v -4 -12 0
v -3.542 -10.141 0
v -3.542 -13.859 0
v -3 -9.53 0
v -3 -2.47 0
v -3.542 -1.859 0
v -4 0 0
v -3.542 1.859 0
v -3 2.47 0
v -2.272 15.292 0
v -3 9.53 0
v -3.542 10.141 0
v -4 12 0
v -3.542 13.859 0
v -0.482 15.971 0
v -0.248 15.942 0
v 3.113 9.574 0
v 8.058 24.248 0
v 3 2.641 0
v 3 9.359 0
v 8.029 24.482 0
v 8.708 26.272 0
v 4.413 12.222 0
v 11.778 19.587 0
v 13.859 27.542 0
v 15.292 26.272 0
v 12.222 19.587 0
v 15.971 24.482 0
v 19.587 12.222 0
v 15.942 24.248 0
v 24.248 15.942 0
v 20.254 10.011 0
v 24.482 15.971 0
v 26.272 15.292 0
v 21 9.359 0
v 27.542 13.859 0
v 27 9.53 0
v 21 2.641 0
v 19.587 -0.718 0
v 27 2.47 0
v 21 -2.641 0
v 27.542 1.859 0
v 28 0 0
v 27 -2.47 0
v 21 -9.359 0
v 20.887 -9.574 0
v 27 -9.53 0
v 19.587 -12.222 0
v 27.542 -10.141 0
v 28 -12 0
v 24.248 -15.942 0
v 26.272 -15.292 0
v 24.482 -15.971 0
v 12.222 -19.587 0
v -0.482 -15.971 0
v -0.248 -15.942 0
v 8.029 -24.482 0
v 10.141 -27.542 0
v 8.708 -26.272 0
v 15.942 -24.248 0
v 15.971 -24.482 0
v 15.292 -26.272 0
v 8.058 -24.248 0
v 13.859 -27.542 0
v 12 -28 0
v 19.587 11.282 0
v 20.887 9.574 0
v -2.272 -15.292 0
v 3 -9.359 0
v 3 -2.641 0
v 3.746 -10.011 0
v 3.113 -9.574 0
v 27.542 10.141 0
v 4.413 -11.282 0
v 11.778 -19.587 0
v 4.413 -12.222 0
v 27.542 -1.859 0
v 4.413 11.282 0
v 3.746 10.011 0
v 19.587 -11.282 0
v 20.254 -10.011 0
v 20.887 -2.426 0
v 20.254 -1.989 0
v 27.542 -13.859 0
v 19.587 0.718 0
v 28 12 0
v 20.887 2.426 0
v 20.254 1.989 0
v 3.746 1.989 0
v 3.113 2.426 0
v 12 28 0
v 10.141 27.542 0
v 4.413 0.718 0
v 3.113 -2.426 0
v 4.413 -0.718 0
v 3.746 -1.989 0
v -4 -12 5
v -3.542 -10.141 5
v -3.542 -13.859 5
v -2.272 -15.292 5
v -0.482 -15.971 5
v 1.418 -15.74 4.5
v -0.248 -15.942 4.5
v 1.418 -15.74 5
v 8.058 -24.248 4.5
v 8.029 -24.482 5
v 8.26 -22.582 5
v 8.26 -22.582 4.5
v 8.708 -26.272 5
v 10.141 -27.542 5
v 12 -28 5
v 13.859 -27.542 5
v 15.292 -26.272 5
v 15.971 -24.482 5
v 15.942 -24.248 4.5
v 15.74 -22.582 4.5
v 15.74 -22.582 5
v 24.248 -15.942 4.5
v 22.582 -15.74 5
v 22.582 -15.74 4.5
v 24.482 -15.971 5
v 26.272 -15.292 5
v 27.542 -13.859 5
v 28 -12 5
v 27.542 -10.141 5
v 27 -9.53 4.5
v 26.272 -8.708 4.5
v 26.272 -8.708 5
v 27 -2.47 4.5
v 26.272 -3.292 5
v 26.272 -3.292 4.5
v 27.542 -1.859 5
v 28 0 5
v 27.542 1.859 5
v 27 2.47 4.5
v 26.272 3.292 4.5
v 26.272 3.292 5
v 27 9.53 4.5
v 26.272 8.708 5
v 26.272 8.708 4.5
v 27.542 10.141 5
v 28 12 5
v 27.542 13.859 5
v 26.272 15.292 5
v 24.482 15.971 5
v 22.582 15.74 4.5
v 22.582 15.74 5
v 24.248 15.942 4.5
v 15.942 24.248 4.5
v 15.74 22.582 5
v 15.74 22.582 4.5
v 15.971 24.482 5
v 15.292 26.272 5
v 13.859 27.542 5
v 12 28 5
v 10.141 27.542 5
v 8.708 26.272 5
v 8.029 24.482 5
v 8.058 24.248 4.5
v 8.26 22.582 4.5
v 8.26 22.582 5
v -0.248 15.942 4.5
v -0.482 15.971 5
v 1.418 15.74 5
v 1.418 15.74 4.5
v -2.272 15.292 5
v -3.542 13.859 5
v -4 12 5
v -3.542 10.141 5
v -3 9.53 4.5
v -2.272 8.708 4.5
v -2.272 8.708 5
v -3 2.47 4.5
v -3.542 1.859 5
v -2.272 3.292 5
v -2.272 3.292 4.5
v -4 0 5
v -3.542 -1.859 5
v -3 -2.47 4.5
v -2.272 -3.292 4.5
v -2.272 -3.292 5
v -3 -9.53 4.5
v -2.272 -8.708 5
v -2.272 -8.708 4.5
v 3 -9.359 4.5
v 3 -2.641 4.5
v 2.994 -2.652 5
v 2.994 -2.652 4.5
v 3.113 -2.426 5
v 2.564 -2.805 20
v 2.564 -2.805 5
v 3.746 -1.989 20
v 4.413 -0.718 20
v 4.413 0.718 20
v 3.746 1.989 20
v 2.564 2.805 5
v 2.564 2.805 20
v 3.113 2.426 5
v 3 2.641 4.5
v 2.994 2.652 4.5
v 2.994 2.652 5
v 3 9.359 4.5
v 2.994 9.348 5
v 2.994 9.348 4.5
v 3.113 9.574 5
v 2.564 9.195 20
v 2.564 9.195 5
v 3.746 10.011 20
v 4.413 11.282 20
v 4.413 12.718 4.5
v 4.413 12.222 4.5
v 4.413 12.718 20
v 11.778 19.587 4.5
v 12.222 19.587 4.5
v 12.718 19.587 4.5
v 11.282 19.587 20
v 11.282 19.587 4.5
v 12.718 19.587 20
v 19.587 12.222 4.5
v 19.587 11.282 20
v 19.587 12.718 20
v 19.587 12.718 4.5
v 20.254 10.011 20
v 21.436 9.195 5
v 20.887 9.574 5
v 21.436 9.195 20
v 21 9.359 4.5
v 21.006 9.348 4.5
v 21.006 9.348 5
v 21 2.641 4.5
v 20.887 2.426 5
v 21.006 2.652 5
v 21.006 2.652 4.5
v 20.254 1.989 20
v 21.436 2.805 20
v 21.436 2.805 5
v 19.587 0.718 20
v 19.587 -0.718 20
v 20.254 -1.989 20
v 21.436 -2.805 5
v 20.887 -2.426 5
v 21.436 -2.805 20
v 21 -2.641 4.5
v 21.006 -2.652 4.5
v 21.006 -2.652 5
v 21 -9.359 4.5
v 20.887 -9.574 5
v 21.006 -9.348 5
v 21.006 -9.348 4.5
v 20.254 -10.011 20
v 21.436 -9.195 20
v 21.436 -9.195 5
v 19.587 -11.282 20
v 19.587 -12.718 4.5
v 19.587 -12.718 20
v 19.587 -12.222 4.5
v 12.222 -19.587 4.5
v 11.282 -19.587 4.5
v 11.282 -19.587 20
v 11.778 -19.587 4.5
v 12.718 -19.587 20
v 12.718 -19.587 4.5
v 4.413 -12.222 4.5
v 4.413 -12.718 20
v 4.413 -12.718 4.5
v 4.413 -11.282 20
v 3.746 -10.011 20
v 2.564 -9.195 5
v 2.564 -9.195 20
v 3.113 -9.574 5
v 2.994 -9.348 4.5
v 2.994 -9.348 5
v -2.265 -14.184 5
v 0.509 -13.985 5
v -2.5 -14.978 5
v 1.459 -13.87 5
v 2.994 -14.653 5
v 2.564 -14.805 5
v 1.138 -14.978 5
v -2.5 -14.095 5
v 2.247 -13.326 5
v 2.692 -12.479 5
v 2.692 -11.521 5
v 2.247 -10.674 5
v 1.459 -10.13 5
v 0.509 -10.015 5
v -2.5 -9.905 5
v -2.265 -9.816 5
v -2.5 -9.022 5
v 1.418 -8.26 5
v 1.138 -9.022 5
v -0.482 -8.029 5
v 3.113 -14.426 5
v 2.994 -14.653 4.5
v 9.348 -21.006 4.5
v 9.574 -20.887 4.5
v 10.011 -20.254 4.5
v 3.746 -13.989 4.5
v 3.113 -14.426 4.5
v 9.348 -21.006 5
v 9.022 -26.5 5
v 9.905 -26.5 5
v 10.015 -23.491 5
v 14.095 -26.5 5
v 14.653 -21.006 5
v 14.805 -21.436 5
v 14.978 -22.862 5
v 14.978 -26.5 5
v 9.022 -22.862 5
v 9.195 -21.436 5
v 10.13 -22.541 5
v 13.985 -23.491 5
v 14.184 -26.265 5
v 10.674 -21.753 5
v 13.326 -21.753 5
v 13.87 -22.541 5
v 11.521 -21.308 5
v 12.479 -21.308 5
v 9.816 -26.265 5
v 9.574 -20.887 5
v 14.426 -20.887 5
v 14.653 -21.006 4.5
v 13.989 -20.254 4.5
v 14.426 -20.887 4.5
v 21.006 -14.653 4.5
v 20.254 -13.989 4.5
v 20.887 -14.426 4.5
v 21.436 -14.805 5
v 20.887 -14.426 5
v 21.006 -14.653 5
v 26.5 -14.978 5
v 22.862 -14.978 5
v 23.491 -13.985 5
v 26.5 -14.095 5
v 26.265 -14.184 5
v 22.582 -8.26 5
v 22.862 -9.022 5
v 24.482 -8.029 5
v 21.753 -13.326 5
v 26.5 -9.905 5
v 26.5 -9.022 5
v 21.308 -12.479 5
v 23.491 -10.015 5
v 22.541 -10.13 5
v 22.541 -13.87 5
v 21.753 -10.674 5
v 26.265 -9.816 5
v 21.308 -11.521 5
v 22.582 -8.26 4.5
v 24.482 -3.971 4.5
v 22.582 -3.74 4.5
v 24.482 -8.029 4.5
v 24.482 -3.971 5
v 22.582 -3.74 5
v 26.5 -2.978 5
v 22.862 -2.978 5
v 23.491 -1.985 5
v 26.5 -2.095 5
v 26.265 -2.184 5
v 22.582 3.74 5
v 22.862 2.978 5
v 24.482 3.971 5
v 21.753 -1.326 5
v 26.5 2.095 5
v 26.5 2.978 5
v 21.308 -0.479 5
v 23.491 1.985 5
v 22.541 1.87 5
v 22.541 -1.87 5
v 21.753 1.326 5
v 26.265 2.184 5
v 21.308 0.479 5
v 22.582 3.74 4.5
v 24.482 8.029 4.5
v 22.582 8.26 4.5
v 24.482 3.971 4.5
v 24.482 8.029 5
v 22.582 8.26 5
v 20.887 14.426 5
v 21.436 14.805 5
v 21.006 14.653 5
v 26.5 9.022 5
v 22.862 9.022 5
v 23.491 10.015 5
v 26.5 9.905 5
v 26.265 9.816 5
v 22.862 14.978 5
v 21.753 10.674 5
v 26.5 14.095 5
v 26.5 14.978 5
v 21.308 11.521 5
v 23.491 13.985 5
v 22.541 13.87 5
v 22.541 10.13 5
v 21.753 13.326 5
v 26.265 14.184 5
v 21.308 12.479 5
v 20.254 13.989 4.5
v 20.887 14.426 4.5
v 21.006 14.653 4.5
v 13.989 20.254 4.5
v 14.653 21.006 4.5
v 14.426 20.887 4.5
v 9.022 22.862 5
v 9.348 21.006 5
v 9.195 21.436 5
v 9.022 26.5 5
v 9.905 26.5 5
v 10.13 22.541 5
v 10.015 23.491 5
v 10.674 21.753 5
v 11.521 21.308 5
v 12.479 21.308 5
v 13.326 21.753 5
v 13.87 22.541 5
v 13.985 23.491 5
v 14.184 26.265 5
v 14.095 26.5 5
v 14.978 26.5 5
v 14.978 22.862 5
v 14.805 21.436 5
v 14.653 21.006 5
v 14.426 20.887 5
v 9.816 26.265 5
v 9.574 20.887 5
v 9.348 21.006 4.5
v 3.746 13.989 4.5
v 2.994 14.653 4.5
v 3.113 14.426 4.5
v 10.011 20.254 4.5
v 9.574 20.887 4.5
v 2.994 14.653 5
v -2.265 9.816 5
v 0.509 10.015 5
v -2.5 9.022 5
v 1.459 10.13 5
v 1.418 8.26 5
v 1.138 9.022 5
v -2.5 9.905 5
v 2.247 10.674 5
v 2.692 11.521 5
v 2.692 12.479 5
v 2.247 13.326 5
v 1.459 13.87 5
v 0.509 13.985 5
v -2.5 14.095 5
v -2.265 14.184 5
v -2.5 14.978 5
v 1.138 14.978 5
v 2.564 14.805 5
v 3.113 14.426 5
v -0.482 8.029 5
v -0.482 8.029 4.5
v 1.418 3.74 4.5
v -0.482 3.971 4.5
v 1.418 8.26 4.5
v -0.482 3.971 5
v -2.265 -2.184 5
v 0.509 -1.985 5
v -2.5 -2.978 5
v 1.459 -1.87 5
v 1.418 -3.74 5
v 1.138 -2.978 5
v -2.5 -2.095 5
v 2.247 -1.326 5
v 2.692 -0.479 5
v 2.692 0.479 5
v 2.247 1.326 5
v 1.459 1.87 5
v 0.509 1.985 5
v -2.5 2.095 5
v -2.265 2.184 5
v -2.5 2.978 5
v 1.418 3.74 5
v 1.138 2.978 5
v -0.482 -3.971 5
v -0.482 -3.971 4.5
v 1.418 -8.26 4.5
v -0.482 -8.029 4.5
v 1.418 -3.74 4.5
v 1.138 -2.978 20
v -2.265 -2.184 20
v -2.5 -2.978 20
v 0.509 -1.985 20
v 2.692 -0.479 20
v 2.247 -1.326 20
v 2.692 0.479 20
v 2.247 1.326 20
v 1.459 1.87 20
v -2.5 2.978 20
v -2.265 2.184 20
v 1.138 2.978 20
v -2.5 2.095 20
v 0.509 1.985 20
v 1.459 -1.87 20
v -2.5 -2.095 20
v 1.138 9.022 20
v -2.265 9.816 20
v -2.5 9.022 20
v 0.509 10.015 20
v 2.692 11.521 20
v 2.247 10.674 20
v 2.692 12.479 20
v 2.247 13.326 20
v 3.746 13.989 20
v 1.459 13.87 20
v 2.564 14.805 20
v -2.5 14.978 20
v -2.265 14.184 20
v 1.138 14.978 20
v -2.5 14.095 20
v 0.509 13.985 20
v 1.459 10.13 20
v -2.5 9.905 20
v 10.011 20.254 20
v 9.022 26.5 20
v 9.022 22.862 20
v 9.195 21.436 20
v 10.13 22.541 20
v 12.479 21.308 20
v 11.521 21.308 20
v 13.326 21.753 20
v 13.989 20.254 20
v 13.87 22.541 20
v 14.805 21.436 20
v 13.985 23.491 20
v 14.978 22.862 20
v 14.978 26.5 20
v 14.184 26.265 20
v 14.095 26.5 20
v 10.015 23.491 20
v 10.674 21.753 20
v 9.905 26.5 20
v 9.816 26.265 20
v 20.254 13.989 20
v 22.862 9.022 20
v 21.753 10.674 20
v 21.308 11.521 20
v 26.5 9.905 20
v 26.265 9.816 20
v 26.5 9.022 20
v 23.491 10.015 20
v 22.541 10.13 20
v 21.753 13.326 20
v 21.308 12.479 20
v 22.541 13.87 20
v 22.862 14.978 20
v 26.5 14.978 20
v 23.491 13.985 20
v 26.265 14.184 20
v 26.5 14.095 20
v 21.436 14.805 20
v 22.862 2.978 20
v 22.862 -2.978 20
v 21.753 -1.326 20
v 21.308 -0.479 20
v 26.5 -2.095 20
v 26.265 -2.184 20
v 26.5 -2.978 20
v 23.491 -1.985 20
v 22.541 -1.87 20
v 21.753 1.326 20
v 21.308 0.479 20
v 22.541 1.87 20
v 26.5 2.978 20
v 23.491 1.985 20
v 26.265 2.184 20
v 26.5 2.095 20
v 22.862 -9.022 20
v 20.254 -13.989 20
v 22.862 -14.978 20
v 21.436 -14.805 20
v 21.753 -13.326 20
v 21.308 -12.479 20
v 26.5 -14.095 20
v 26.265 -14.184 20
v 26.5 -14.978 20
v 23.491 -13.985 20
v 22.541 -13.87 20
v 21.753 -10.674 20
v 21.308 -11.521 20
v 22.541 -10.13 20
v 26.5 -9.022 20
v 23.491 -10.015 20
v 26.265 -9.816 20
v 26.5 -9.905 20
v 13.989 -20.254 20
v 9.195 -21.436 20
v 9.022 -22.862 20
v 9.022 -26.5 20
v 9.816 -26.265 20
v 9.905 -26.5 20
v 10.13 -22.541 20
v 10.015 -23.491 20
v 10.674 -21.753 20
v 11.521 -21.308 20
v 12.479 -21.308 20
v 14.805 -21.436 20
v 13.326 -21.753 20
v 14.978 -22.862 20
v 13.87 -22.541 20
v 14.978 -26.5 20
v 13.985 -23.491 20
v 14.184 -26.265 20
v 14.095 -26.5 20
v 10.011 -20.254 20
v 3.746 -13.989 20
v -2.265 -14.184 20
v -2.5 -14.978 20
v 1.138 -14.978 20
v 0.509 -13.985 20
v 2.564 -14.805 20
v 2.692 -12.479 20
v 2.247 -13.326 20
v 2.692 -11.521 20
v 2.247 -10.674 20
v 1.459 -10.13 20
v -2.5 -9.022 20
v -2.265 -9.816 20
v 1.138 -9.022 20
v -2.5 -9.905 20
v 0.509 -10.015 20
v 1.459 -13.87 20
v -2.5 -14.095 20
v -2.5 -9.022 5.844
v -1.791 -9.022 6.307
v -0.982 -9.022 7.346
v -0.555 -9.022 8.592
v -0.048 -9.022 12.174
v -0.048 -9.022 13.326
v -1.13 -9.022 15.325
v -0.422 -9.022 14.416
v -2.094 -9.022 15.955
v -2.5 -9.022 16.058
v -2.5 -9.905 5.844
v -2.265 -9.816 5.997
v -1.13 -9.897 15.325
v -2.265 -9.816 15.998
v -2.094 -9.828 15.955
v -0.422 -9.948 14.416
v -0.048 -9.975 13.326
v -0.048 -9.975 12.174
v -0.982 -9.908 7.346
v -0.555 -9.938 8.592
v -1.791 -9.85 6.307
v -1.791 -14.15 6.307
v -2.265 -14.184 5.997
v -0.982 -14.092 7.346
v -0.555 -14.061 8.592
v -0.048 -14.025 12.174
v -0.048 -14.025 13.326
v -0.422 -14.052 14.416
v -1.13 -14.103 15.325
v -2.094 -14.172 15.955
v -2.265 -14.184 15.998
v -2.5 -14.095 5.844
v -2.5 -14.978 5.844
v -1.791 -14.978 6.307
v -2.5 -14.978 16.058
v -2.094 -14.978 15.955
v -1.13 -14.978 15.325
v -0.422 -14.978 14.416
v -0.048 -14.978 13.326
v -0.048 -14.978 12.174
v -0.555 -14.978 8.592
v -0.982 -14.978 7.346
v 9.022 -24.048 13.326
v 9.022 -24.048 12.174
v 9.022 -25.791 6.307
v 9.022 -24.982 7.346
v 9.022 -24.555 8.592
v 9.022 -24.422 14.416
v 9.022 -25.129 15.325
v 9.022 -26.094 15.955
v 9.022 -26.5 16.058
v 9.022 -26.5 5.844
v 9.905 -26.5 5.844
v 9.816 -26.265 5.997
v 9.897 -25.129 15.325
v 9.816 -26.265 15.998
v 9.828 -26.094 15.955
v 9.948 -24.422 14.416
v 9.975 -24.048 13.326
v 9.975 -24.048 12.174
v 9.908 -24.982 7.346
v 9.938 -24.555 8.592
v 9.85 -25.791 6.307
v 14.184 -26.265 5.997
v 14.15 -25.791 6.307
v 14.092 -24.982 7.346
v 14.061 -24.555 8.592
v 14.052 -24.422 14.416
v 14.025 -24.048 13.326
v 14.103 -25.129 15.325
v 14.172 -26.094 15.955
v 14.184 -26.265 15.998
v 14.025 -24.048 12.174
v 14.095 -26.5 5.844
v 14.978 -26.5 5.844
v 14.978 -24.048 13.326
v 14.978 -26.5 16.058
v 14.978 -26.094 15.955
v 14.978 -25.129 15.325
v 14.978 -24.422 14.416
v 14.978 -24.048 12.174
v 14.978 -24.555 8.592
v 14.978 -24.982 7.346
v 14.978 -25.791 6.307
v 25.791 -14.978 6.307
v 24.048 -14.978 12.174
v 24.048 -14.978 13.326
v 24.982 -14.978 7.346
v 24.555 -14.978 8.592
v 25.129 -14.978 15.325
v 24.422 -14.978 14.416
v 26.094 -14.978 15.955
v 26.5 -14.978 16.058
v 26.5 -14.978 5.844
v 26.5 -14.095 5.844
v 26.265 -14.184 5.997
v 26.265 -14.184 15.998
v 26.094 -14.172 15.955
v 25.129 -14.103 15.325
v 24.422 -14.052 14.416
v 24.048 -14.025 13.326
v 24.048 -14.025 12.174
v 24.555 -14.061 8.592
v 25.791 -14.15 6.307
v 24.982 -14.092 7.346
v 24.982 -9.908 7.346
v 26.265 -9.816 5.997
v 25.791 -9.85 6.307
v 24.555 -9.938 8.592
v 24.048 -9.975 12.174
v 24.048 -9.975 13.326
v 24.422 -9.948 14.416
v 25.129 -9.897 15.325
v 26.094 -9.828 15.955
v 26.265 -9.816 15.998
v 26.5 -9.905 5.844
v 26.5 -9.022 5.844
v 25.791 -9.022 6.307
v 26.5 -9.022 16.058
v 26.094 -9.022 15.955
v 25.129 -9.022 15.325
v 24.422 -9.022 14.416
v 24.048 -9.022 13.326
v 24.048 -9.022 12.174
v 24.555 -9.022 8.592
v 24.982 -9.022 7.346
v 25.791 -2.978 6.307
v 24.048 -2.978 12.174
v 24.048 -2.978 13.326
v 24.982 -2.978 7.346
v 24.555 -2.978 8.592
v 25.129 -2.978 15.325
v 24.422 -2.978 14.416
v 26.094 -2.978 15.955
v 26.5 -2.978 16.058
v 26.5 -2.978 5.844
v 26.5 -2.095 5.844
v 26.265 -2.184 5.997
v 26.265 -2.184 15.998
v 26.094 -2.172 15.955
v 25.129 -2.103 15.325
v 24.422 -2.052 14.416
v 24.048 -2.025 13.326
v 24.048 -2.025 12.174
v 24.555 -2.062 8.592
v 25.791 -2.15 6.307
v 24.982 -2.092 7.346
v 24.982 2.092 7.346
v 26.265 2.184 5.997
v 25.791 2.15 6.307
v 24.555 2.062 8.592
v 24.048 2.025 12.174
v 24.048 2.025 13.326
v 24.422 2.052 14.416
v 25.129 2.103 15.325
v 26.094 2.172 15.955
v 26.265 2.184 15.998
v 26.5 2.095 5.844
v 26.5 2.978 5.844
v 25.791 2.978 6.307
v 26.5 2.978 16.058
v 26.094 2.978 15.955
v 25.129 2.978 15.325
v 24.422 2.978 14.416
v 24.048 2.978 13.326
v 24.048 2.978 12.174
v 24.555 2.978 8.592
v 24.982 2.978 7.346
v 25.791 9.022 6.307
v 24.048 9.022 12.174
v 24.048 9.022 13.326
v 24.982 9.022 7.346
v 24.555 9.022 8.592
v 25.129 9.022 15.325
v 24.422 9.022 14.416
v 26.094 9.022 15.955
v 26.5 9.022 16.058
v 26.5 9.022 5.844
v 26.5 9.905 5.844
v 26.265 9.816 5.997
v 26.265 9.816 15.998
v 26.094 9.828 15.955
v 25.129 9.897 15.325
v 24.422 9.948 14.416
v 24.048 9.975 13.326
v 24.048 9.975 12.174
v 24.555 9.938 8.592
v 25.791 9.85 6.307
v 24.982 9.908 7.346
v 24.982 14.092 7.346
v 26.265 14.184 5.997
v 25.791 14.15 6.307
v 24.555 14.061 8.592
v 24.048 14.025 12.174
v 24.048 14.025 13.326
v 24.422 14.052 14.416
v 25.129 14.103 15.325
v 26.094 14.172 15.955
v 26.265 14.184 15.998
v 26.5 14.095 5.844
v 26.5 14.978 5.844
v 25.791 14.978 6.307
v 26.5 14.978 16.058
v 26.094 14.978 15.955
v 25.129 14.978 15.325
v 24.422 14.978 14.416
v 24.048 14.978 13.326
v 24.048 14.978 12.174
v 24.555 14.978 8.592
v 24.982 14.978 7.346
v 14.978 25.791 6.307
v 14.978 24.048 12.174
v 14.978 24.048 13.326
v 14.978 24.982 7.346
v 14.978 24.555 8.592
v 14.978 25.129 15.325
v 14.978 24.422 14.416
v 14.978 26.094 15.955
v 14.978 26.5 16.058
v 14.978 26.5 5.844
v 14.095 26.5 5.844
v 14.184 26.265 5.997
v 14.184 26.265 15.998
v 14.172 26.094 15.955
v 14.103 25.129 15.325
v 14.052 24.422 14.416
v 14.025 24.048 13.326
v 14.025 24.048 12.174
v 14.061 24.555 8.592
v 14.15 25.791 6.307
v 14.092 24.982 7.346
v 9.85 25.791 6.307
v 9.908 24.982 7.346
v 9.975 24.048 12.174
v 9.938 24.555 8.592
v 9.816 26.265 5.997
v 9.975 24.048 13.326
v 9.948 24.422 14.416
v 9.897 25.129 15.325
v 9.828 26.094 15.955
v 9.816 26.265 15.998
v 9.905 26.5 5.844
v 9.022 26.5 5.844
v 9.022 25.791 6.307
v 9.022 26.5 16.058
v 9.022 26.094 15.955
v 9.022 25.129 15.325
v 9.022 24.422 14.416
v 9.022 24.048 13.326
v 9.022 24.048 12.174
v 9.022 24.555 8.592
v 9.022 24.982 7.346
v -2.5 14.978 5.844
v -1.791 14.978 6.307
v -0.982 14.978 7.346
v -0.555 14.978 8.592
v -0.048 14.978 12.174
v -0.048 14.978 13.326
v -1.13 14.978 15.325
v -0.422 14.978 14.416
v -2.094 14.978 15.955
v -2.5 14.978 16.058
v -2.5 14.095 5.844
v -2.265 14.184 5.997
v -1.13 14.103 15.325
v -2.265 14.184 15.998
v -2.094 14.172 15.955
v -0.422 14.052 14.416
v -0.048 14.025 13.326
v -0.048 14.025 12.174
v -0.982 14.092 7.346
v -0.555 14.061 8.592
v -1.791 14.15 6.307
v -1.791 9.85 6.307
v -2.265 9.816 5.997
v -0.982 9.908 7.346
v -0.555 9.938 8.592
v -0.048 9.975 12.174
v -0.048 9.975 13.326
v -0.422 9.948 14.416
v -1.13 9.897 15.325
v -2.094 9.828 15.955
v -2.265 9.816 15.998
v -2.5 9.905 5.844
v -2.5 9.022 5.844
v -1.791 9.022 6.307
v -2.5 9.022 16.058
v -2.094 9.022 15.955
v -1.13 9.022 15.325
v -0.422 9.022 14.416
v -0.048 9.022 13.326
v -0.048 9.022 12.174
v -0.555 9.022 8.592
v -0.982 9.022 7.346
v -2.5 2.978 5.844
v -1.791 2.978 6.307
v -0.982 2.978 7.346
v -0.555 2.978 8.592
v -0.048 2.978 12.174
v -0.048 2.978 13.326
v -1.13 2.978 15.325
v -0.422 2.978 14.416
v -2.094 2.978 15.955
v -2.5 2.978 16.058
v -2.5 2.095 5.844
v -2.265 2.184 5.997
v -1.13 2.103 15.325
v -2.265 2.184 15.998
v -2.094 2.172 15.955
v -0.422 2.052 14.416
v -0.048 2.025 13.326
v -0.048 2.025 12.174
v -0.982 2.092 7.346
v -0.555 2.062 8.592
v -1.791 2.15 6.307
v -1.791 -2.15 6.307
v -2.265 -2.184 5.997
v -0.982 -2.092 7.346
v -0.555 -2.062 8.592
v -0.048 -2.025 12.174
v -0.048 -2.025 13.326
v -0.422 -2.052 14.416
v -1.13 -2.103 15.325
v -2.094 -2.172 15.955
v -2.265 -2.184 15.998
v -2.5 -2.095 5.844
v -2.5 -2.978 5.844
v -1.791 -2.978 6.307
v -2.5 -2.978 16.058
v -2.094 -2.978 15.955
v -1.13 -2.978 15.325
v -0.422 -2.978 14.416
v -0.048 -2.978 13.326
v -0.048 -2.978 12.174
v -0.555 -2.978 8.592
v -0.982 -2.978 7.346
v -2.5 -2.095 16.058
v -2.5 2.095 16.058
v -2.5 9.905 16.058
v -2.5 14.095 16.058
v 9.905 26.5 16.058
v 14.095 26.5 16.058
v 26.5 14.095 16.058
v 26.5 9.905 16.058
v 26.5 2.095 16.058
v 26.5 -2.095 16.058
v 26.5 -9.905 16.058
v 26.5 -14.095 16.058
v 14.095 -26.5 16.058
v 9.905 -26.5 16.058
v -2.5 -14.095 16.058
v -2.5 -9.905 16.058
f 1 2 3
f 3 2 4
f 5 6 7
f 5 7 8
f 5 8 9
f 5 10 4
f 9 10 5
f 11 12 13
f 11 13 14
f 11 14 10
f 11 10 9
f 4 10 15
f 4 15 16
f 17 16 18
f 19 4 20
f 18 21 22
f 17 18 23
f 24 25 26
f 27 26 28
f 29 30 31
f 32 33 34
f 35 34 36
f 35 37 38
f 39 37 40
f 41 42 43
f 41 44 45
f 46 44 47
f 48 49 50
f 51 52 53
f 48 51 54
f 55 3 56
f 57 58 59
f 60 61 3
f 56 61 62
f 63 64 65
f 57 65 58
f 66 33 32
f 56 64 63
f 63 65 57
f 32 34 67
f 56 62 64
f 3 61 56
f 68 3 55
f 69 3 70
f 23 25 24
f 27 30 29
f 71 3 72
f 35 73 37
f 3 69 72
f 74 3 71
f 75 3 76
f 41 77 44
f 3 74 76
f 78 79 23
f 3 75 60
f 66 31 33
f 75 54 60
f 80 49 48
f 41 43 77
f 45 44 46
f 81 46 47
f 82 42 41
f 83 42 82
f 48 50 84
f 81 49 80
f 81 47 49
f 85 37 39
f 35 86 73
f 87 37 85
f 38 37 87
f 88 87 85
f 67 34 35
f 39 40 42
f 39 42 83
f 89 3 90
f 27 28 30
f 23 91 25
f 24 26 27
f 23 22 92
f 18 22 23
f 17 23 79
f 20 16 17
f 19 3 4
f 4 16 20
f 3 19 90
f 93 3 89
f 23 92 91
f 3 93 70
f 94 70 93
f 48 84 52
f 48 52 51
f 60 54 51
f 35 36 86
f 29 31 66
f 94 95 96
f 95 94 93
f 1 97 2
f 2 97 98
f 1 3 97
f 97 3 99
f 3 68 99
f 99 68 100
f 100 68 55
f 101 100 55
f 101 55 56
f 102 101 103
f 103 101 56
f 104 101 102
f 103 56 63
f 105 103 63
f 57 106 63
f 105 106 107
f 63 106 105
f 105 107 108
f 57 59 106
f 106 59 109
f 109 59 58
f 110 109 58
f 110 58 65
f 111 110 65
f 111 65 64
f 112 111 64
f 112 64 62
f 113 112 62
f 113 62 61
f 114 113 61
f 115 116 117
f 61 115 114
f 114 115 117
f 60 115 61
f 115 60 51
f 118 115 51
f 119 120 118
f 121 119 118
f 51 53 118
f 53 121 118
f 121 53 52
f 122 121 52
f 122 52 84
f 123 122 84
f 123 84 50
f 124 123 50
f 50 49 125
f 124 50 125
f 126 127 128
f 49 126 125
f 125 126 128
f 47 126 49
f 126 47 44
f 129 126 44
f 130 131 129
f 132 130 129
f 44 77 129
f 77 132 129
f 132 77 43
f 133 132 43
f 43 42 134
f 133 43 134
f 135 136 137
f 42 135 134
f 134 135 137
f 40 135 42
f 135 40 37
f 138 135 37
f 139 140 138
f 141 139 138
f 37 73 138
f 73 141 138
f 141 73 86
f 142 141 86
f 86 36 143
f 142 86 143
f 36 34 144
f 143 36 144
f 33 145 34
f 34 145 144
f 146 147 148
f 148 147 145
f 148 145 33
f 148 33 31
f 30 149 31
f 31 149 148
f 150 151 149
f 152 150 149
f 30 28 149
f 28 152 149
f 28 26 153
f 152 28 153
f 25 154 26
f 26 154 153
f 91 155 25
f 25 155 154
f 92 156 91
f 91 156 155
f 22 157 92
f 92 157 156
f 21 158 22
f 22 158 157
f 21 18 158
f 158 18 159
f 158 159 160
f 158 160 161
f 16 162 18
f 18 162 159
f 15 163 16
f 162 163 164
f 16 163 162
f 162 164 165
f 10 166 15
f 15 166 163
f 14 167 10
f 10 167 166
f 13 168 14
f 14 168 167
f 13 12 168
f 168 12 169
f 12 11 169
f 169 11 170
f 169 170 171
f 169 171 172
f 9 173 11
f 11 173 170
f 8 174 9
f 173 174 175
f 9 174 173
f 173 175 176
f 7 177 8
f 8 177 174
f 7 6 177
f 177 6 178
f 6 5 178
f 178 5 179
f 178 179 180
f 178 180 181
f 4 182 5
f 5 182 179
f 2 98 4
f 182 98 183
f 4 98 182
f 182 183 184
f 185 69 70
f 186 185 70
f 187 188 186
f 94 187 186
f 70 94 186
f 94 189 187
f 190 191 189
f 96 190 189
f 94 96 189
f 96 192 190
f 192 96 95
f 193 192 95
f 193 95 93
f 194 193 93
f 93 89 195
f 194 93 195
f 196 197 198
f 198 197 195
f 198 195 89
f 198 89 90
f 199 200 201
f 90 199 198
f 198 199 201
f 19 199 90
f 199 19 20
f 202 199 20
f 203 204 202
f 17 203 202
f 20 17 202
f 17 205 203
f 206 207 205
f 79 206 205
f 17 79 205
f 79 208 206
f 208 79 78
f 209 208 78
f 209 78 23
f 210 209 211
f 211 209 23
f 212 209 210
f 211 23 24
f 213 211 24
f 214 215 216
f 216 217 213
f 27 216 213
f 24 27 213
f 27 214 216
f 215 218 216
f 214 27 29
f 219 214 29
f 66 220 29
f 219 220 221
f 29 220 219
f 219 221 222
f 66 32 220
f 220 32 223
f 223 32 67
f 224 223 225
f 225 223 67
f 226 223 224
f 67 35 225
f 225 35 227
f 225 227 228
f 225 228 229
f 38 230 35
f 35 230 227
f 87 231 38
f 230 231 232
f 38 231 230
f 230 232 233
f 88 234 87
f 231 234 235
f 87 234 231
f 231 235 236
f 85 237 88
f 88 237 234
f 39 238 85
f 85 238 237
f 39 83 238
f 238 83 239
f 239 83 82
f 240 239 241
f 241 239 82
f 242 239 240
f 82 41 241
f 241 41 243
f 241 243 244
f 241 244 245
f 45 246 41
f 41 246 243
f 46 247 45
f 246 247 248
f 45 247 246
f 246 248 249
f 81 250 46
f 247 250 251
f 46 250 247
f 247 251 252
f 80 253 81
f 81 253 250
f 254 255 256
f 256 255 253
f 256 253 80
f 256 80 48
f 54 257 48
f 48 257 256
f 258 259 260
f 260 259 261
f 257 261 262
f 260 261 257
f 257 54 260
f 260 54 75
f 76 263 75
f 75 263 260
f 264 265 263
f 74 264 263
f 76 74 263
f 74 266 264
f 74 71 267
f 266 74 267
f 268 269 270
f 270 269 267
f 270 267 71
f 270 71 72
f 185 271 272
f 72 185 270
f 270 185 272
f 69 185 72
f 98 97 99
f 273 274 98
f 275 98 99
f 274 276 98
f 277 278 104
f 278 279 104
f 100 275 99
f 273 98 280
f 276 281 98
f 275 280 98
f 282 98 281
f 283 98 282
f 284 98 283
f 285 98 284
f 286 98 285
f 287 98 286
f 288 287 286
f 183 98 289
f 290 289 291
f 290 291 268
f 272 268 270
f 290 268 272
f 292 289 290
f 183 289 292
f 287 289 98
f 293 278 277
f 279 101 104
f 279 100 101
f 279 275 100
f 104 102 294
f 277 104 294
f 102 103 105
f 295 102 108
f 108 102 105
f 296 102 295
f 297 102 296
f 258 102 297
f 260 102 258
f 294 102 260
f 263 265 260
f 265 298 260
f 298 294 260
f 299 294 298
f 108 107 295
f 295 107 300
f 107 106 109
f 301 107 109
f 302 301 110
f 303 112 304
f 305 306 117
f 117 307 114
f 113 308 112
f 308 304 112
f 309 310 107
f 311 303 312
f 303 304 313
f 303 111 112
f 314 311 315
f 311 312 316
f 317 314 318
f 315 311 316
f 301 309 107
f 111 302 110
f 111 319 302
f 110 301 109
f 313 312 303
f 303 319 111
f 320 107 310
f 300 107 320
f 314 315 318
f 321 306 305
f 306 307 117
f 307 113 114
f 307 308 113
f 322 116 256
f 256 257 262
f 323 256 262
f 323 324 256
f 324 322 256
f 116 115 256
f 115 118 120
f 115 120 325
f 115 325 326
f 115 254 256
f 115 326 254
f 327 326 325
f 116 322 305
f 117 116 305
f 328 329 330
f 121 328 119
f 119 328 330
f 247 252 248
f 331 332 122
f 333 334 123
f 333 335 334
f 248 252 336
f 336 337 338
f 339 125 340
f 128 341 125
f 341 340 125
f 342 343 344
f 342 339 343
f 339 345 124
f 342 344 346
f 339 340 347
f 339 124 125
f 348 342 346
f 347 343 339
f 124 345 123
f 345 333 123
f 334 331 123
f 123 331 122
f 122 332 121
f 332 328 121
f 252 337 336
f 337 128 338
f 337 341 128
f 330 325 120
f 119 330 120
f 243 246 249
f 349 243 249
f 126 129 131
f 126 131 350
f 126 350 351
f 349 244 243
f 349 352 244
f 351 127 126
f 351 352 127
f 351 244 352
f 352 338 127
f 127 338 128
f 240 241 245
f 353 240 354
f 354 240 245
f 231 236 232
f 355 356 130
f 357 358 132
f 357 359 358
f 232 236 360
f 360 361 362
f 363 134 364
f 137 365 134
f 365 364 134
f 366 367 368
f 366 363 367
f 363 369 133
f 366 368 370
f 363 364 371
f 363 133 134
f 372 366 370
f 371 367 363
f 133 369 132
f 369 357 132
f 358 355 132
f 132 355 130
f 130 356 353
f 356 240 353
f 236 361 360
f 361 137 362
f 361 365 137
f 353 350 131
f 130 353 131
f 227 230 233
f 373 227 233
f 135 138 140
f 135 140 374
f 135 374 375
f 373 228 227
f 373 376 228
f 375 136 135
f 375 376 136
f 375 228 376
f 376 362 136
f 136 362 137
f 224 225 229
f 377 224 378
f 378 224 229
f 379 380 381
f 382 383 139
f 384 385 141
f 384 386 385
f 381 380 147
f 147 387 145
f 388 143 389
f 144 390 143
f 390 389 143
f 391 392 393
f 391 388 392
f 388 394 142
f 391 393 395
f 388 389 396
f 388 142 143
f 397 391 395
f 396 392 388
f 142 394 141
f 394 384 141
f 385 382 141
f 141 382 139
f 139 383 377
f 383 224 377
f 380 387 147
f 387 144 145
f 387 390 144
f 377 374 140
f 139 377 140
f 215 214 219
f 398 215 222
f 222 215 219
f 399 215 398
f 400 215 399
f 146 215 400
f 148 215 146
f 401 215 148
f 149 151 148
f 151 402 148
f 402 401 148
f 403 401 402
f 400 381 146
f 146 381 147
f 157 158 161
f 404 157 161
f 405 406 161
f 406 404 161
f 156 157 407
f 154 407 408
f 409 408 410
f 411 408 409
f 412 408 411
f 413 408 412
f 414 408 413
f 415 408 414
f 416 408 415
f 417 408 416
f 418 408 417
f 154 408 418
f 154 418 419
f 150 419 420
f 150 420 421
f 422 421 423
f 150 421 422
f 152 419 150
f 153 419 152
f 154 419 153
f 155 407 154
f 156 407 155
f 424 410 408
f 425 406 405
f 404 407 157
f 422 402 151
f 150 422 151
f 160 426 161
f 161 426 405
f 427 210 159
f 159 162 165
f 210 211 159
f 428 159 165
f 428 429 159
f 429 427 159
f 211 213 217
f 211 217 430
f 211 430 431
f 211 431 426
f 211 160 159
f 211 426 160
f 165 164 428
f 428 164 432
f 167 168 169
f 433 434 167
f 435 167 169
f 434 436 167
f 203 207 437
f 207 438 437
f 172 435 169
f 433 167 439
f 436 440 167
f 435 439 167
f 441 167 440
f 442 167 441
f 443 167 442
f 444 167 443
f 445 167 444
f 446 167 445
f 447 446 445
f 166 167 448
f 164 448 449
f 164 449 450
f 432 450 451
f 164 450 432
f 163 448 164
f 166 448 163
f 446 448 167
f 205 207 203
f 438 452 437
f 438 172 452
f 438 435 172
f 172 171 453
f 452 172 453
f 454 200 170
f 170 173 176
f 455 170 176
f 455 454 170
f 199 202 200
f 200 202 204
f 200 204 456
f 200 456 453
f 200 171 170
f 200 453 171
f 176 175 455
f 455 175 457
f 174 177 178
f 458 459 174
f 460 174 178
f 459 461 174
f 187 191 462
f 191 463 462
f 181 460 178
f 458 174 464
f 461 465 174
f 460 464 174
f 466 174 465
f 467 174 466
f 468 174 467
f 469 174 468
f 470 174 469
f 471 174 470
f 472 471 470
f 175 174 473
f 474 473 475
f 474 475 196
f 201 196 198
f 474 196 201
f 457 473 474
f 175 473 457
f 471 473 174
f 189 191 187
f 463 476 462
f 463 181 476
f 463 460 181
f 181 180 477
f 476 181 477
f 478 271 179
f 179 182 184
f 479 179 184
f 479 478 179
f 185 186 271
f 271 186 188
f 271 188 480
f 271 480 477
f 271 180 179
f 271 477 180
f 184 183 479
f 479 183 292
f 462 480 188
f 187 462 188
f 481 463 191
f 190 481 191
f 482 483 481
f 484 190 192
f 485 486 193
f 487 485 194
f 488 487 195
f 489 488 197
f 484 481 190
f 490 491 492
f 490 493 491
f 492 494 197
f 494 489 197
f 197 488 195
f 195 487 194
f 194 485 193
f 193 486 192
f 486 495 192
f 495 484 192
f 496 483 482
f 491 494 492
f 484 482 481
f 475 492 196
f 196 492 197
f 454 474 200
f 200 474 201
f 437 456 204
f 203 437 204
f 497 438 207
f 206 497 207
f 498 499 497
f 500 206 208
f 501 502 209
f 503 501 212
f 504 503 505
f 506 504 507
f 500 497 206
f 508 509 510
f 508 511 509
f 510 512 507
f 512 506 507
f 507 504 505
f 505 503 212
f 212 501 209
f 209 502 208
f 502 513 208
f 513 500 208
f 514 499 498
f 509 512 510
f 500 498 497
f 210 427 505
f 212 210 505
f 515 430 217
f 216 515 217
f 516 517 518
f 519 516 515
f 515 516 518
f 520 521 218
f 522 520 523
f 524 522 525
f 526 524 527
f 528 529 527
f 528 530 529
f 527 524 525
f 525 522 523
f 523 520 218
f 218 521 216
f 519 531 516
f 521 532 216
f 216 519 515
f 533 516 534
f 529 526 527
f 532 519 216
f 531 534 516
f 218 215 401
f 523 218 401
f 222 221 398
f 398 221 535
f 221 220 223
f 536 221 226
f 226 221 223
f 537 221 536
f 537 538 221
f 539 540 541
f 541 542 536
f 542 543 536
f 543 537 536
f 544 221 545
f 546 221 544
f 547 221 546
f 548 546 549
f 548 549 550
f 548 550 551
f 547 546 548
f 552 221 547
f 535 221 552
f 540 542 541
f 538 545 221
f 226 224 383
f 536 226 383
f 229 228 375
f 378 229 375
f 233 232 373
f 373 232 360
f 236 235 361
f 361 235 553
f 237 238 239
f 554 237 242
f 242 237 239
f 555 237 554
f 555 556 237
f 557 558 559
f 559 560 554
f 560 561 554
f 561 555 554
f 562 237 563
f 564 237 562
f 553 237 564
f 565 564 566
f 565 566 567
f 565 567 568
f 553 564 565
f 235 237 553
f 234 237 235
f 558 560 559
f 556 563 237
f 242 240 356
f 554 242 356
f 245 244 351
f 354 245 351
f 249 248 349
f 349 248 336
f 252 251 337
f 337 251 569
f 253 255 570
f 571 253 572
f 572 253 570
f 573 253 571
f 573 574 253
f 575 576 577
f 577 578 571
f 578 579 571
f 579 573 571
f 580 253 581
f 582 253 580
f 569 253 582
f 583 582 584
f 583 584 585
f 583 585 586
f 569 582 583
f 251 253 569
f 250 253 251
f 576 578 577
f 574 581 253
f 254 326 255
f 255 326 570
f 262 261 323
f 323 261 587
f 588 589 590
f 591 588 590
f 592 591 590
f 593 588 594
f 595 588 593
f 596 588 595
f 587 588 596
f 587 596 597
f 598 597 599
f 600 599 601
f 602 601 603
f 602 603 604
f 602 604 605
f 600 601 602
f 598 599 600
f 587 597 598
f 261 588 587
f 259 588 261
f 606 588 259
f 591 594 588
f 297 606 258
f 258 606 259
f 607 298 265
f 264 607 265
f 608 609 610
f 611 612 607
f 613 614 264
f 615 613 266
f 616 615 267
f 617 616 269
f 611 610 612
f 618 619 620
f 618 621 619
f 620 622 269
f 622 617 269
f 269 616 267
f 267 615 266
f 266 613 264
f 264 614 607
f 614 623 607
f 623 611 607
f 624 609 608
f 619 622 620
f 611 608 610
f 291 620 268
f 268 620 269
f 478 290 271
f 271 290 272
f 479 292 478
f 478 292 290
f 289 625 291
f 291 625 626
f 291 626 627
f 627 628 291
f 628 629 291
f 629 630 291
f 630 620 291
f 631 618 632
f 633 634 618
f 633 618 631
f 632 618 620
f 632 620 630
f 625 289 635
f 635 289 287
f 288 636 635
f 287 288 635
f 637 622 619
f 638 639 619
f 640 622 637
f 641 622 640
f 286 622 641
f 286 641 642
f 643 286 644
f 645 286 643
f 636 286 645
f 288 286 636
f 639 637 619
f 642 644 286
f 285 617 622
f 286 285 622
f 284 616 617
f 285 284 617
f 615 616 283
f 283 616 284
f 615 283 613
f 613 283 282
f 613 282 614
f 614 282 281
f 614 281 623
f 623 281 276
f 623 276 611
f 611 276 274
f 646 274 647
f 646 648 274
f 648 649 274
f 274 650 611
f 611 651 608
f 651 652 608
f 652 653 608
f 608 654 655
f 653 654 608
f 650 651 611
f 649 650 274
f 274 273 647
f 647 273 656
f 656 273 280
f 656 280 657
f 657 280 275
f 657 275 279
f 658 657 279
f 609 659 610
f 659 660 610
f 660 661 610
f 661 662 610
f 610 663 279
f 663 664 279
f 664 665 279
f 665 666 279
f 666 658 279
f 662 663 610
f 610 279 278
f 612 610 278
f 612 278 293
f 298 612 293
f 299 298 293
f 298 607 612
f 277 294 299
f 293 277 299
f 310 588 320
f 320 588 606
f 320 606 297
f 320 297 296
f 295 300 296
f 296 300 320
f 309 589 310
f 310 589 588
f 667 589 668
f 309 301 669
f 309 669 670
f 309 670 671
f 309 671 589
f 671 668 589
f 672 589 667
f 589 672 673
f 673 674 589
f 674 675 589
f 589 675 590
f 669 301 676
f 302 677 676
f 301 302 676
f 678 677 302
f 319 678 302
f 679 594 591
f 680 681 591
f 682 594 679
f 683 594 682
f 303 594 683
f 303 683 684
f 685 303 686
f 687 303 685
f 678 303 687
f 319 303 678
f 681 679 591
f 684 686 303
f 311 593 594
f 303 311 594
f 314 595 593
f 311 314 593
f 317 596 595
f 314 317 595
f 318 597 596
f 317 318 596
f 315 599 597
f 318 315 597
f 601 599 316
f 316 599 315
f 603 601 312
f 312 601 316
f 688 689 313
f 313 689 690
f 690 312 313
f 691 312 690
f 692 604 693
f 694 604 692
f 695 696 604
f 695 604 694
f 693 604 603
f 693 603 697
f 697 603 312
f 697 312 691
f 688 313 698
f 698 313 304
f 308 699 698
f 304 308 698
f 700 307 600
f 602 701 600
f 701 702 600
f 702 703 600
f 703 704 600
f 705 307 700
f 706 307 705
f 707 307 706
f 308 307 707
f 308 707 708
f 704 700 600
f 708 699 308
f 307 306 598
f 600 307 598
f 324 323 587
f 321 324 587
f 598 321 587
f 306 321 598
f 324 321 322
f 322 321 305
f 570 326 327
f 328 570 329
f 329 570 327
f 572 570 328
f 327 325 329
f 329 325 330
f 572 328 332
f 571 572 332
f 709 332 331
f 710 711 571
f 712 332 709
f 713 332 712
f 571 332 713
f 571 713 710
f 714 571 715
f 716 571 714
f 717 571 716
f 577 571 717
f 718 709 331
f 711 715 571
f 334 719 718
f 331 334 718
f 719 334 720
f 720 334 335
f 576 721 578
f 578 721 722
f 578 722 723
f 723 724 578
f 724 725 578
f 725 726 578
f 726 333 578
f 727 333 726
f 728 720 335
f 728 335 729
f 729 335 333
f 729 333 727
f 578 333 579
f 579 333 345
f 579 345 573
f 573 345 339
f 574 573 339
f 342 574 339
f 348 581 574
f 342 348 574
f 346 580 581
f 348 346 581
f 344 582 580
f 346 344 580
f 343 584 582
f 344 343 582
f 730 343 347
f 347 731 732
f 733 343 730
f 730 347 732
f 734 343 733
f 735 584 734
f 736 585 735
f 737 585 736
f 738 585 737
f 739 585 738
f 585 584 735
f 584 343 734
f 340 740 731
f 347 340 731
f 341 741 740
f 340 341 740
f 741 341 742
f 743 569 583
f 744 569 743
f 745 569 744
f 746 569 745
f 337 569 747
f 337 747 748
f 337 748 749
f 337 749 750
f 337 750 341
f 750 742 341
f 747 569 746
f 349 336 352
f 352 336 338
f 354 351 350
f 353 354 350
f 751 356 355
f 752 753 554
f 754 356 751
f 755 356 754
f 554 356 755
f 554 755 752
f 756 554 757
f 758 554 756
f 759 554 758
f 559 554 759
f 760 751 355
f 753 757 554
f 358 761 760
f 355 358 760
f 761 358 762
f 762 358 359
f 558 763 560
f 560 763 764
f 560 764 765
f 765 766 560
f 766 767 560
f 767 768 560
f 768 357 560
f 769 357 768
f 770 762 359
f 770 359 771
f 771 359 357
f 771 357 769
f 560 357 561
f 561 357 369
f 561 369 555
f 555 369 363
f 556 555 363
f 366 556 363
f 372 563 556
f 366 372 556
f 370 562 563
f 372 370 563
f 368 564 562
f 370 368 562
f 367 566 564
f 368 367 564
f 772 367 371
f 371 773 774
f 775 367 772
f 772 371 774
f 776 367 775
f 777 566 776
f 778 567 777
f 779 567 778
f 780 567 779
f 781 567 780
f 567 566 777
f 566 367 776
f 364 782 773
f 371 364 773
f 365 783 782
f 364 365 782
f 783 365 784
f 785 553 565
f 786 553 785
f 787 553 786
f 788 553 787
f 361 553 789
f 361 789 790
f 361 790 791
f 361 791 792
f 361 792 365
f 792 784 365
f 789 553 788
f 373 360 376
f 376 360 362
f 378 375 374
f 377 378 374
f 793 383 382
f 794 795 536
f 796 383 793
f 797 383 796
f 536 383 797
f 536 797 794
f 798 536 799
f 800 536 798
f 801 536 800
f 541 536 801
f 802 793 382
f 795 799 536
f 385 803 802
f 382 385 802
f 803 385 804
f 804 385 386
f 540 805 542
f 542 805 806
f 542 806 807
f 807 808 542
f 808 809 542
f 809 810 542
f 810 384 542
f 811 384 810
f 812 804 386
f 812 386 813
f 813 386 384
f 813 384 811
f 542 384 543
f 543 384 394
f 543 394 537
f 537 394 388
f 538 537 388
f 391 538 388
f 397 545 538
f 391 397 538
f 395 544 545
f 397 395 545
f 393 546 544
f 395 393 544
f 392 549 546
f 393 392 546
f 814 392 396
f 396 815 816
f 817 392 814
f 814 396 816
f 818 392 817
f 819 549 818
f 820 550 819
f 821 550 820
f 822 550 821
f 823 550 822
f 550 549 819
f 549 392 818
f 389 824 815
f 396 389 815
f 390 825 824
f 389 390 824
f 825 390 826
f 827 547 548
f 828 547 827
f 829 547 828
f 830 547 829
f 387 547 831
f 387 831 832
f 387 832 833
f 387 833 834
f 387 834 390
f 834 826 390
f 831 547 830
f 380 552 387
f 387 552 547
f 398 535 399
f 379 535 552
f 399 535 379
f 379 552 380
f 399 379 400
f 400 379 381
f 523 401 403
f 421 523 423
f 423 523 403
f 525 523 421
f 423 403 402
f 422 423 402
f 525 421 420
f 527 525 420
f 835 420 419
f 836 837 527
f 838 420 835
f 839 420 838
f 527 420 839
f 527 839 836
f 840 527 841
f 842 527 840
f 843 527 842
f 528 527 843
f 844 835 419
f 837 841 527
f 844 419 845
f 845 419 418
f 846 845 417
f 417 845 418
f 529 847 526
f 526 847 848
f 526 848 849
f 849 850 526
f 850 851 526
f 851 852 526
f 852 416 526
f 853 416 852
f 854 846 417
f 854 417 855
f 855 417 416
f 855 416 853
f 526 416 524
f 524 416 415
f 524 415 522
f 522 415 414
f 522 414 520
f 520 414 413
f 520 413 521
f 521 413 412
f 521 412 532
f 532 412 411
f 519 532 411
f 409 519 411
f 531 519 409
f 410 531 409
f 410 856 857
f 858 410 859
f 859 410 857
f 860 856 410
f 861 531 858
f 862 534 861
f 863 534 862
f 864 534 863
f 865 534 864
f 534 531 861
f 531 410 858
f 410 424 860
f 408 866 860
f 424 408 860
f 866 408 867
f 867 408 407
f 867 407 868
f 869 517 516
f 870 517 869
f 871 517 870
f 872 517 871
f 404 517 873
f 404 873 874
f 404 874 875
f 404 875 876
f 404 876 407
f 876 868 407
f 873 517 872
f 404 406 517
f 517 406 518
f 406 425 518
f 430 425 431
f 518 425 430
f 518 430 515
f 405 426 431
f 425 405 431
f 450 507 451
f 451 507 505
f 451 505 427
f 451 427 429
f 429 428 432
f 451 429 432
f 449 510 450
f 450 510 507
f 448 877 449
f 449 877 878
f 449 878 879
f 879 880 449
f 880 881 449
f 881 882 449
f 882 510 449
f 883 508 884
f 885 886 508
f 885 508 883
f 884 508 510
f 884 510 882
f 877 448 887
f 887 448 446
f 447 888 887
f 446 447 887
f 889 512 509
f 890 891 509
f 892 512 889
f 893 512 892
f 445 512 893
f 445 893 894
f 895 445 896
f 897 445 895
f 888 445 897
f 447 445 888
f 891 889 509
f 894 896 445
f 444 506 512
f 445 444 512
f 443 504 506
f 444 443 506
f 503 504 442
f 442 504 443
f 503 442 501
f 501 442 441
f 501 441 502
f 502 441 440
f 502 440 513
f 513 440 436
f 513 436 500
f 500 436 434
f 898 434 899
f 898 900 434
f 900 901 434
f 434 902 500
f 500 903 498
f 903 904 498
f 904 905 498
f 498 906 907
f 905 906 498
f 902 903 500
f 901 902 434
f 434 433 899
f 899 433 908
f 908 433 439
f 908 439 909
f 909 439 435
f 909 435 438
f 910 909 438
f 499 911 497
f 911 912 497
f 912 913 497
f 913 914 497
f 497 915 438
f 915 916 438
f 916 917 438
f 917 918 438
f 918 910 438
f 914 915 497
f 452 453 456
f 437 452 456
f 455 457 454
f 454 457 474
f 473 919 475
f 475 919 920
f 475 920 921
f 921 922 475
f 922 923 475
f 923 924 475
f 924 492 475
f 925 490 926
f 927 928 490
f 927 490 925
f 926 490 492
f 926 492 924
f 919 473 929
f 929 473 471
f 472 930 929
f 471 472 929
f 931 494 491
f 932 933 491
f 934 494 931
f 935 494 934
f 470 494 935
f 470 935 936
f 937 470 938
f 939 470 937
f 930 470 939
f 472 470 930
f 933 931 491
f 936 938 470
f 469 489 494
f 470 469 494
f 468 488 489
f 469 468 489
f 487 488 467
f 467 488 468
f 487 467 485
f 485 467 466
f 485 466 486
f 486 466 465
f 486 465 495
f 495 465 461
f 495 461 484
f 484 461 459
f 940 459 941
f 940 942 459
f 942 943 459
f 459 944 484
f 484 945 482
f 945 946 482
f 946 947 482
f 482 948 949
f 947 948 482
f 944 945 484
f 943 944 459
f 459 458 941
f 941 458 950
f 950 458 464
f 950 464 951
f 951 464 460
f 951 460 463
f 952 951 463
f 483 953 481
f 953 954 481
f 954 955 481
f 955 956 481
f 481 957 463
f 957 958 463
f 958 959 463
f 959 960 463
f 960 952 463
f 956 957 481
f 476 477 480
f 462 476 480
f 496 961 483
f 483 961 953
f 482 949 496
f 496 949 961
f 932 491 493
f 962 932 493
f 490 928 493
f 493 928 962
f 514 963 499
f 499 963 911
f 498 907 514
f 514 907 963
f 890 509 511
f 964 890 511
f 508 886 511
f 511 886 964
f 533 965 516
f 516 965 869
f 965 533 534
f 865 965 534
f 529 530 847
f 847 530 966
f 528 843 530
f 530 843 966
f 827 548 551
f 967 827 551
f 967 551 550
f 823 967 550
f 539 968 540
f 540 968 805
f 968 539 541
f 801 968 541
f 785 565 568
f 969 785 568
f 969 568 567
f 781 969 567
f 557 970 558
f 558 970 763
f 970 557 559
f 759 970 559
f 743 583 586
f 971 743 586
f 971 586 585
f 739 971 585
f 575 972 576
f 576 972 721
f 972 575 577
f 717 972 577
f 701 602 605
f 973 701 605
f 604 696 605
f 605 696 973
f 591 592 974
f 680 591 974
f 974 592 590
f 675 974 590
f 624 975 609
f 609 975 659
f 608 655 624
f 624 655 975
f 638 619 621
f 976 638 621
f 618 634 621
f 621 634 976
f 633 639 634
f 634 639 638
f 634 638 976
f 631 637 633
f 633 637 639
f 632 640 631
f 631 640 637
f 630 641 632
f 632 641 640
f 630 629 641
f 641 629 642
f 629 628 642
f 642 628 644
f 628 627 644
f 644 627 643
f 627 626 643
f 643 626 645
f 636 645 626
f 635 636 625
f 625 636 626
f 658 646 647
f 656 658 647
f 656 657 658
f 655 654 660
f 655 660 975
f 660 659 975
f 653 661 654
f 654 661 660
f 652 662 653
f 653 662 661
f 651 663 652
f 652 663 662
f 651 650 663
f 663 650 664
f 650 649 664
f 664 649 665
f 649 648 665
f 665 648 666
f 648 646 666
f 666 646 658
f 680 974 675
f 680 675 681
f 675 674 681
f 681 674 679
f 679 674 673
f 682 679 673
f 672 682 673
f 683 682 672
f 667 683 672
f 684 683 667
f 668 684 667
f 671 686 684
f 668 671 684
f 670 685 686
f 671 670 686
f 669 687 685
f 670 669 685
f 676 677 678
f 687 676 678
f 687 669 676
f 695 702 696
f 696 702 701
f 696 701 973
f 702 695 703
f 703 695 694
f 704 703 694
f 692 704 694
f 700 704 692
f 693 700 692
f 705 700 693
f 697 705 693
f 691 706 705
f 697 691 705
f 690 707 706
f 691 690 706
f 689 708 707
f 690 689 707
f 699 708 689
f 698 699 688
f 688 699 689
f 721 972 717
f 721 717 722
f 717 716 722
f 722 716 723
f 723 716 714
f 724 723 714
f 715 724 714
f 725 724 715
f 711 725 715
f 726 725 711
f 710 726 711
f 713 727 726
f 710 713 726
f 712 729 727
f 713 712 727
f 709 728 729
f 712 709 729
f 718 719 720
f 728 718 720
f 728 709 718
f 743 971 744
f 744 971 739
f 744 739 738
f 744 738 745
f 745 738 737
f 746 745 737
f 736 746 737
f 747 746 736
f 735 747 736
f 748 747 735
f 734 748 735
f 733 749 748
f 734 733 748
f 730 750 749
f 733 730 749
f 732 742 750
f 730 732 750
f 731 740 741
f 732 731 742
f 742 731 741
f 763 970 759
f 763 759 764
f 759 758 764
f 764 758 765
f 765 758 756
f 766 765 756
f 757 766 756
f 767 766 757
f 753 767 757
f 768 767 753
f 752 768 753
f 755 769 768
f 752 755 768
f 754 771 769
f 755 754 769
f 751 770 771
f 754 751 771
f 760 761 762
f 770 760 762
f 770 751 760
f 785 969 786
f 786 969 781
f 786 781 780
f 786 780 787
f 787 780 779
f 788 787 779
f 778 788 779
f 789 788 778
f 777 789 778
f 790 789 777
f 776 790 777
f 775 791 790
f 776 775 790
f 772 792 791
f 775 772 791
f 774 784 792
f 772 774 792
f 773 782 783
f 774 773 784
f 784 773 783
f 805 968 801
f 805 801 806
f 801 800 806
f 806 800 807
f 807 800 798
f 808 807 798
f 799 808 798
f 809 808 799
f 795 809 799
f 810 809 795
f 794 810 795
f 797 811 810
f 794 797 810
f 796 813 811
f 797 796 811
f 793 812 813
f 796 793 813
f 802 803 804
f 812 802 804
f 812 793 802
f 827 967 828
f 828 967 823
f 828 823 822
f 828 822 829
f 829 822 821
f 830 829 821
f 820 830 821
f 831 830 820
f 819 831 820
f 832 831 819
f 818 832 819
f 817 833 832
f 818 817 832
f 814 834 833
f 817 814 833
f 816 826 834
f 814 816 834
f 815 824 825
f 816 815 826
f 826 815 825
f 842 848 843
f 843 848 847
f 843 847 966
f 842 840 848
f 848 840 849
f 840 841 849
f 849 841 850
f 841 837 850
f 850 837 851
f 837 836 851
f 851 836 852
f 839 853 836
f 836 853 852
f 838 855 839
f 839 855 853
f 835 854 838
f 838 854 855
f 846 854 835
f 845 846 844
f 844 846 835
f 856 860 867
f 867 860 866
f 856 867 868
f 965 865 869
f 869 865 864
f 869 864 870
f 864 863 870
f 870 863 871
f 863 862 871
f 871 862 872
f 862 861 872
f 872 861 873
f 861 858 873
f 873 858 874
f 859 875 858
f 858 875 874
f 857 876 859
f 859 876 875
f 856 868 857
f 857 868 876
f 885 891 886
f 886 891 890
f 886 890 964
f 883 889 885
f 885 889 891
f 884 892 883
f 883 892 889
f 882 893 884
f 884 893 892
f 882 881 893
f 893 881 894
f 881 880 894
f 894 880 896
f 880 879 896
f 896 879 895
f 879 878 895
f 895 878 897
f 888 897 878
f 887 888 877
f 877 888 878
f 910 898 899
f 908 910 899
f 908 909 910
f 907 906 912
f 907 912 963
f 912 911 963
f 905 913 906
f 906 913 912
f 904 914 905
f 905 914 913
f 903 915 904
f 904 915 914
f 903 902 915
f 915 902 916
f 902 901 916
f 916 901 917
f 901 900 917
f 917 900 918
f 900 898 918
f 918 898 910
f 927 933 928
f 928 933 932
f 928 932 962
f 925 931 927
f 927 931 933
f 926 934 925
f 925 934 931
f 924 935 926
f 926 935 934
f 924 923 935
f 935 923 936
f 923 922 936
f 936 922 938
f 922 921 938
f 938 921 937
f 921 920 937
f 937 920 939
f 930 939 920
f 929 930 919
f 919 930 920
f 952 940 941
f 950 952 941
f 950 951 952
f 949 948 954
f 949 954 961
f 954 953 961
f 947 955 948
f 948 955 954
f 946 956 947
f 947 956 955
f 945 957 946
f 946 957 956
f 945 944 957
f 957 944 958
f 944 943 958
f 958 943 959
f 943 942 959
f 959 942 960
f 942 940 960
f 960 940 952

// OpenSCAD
// file: loom_module.scad
/*
    Openscad Rubber-band Loom.

    This is a rubber-band loom for weaving.

    Copyright (C) 2014. Tim Molteno, tim@molteno.net
  
    This program is free software: you can redistribute it and/or modify
    it under the terms of the GNU General Public License as published by
    the Free Software Foundation, either version 3 of the License, or
    (at your option) any later version.

    This program is distributed in the hope that it will be useful,
    but WITHOUT ANY WARRANTY; without even the implied warranty of
    MERCHANTABILITY or FITNESS FOR A PARTICULAR PURPOSE.  See the
    GNU General Public License for more details.

    You should have received a copy of the GNU General Public License
    along with this program.  If not, see <http://www.gnu.org/licenses/>.
*/

post_height  = 18.0;  /* Height of the Loom from Bottom to top */
base_height  = 4.0;   /* Height of the base (mm) */

  
module post(h) {
  difference() {
    hull() {
      translate([ 5,0,0]) cylinder(r = 3, h=h, $fn=13);
      translate([-1.5,0,0]) cylinder(r = 3, h=h, $fn=13);
    }
    hull() {
      translate([-0.75,0,-1]) cylinder(r = 2.0, h=h + 2, $fn=13);
      translate([2,0,-1]) cylinder(r = 2.2, h=h + 2, $fn=13);
    }
    translate([2.5,0, base_height+3.75]) hull() {
      translate([2,0,1.5]) rotate([90,0,0]) cylinder(r=4, h=10, center=true, $fn=19);
      translate([1,0,5]) rotate([90,0,0]) cylinder(r=3.5, h=10, center=true, $fn=19);
    }
    translate([2.5,-5,-2.5]) cube([10,10,h+5]);
  }
  cylinder(r=4, h=base_height+1);
}


module base(width, center, step_angle) {
  
  for (angle = [0:step_angle:(360 - step_angle)]) {
    rotate(angle)  translate([width/2-1.5,0,0]) post(post_height);
  }
  difference() {
    cylinder(r=width/2, h=base_height,$fn=31);
    translate([0,0,-1]) cylinder(r=center/2, h=12, $fn=31); // Center Hole
  }
}


module loom(n_posts, post_spacing) {

  width = (post_spacing*n_posts) / 3.1415;
  center = width - 12.0;
  step_angle = 360 / n_posts;


  intersection() {
    base(width, center, step_angle);
    cylinder(r=width/2, h=50, $fn=31);
  }
}


//loom(8, 12);
post(18);
// main file
/*
    Openscad Rubber-band Loom.

    This is a monster tail rubber-band loom for weaving.

    Copyright (C) 2014. Linus Molteno, linus@molteno.net
  
    This program is free software: you can redistribute it and/or modify
    it under the terms of the GNU General Public License as published by
    the Free Software Foundation, either version 3 of the License, or
    (at your option) any later version.

    This program is distributed in the hope that it will be useful,
    but WITHOUT ANY WARRANTY; without even the implied warranty of
    MERCHANTABILITY or FITNESS FOR A PARTICULAR PURPOSE.  See the
    GNU General Public License for more details.

    You should have received a copy of the GNU General Public License
    along with this program.  If not, see <http://www.gnu.org/licenses/>.
*/
use<loom_module.scad>

hull() {
  translate([0,12,0])cylinder(r=3, h=4.5);
  translate([0,-12,0])cylinder(r=3, h=4.5);
}
hull() {
  translate([24,12,0])cylinder(r=3, h=4.5);
  translate([24,-12,0])cylinder(r=3, h=4.5);
}
hull() {
  translate([0,-12,0])cylinder(r=3, h=4.5);
  translate([12,-24,0])cylinder(r=3, h=4.5);
}
hull() {
  translate([24,-12,0])cylinder(r=3, h=4.5);
  translate([12,-24,0])cylinder(r=3, h=4.5);
}
hull() {
  translate([24,12,0])cylinder(r=3, h=4.5);
  translate([12,24,0])cylinder(r=3, h=4.5);
}
hull() {
  translate([0,12,0])cylinder(r=3, h=4.5);
  translate([12,24,0])cylinder(r=3, h=4.5);
}
rotate([0,0,180])post(h=20);
rotate([0,0,180])translate([0,12,0])post(h=20);
rotate([0,0,180])translate([0,-12,0])post(h=20);
translate([12,24,0])rotate([0,0,90])post(h=20);
translate([24,12,0])post(h=20);
translate([24,0,0])post(h=20);
translate([24,-12,0])post(h=20);
translate([12,-24,0])rotate([0,0,-90])post(h=20);
